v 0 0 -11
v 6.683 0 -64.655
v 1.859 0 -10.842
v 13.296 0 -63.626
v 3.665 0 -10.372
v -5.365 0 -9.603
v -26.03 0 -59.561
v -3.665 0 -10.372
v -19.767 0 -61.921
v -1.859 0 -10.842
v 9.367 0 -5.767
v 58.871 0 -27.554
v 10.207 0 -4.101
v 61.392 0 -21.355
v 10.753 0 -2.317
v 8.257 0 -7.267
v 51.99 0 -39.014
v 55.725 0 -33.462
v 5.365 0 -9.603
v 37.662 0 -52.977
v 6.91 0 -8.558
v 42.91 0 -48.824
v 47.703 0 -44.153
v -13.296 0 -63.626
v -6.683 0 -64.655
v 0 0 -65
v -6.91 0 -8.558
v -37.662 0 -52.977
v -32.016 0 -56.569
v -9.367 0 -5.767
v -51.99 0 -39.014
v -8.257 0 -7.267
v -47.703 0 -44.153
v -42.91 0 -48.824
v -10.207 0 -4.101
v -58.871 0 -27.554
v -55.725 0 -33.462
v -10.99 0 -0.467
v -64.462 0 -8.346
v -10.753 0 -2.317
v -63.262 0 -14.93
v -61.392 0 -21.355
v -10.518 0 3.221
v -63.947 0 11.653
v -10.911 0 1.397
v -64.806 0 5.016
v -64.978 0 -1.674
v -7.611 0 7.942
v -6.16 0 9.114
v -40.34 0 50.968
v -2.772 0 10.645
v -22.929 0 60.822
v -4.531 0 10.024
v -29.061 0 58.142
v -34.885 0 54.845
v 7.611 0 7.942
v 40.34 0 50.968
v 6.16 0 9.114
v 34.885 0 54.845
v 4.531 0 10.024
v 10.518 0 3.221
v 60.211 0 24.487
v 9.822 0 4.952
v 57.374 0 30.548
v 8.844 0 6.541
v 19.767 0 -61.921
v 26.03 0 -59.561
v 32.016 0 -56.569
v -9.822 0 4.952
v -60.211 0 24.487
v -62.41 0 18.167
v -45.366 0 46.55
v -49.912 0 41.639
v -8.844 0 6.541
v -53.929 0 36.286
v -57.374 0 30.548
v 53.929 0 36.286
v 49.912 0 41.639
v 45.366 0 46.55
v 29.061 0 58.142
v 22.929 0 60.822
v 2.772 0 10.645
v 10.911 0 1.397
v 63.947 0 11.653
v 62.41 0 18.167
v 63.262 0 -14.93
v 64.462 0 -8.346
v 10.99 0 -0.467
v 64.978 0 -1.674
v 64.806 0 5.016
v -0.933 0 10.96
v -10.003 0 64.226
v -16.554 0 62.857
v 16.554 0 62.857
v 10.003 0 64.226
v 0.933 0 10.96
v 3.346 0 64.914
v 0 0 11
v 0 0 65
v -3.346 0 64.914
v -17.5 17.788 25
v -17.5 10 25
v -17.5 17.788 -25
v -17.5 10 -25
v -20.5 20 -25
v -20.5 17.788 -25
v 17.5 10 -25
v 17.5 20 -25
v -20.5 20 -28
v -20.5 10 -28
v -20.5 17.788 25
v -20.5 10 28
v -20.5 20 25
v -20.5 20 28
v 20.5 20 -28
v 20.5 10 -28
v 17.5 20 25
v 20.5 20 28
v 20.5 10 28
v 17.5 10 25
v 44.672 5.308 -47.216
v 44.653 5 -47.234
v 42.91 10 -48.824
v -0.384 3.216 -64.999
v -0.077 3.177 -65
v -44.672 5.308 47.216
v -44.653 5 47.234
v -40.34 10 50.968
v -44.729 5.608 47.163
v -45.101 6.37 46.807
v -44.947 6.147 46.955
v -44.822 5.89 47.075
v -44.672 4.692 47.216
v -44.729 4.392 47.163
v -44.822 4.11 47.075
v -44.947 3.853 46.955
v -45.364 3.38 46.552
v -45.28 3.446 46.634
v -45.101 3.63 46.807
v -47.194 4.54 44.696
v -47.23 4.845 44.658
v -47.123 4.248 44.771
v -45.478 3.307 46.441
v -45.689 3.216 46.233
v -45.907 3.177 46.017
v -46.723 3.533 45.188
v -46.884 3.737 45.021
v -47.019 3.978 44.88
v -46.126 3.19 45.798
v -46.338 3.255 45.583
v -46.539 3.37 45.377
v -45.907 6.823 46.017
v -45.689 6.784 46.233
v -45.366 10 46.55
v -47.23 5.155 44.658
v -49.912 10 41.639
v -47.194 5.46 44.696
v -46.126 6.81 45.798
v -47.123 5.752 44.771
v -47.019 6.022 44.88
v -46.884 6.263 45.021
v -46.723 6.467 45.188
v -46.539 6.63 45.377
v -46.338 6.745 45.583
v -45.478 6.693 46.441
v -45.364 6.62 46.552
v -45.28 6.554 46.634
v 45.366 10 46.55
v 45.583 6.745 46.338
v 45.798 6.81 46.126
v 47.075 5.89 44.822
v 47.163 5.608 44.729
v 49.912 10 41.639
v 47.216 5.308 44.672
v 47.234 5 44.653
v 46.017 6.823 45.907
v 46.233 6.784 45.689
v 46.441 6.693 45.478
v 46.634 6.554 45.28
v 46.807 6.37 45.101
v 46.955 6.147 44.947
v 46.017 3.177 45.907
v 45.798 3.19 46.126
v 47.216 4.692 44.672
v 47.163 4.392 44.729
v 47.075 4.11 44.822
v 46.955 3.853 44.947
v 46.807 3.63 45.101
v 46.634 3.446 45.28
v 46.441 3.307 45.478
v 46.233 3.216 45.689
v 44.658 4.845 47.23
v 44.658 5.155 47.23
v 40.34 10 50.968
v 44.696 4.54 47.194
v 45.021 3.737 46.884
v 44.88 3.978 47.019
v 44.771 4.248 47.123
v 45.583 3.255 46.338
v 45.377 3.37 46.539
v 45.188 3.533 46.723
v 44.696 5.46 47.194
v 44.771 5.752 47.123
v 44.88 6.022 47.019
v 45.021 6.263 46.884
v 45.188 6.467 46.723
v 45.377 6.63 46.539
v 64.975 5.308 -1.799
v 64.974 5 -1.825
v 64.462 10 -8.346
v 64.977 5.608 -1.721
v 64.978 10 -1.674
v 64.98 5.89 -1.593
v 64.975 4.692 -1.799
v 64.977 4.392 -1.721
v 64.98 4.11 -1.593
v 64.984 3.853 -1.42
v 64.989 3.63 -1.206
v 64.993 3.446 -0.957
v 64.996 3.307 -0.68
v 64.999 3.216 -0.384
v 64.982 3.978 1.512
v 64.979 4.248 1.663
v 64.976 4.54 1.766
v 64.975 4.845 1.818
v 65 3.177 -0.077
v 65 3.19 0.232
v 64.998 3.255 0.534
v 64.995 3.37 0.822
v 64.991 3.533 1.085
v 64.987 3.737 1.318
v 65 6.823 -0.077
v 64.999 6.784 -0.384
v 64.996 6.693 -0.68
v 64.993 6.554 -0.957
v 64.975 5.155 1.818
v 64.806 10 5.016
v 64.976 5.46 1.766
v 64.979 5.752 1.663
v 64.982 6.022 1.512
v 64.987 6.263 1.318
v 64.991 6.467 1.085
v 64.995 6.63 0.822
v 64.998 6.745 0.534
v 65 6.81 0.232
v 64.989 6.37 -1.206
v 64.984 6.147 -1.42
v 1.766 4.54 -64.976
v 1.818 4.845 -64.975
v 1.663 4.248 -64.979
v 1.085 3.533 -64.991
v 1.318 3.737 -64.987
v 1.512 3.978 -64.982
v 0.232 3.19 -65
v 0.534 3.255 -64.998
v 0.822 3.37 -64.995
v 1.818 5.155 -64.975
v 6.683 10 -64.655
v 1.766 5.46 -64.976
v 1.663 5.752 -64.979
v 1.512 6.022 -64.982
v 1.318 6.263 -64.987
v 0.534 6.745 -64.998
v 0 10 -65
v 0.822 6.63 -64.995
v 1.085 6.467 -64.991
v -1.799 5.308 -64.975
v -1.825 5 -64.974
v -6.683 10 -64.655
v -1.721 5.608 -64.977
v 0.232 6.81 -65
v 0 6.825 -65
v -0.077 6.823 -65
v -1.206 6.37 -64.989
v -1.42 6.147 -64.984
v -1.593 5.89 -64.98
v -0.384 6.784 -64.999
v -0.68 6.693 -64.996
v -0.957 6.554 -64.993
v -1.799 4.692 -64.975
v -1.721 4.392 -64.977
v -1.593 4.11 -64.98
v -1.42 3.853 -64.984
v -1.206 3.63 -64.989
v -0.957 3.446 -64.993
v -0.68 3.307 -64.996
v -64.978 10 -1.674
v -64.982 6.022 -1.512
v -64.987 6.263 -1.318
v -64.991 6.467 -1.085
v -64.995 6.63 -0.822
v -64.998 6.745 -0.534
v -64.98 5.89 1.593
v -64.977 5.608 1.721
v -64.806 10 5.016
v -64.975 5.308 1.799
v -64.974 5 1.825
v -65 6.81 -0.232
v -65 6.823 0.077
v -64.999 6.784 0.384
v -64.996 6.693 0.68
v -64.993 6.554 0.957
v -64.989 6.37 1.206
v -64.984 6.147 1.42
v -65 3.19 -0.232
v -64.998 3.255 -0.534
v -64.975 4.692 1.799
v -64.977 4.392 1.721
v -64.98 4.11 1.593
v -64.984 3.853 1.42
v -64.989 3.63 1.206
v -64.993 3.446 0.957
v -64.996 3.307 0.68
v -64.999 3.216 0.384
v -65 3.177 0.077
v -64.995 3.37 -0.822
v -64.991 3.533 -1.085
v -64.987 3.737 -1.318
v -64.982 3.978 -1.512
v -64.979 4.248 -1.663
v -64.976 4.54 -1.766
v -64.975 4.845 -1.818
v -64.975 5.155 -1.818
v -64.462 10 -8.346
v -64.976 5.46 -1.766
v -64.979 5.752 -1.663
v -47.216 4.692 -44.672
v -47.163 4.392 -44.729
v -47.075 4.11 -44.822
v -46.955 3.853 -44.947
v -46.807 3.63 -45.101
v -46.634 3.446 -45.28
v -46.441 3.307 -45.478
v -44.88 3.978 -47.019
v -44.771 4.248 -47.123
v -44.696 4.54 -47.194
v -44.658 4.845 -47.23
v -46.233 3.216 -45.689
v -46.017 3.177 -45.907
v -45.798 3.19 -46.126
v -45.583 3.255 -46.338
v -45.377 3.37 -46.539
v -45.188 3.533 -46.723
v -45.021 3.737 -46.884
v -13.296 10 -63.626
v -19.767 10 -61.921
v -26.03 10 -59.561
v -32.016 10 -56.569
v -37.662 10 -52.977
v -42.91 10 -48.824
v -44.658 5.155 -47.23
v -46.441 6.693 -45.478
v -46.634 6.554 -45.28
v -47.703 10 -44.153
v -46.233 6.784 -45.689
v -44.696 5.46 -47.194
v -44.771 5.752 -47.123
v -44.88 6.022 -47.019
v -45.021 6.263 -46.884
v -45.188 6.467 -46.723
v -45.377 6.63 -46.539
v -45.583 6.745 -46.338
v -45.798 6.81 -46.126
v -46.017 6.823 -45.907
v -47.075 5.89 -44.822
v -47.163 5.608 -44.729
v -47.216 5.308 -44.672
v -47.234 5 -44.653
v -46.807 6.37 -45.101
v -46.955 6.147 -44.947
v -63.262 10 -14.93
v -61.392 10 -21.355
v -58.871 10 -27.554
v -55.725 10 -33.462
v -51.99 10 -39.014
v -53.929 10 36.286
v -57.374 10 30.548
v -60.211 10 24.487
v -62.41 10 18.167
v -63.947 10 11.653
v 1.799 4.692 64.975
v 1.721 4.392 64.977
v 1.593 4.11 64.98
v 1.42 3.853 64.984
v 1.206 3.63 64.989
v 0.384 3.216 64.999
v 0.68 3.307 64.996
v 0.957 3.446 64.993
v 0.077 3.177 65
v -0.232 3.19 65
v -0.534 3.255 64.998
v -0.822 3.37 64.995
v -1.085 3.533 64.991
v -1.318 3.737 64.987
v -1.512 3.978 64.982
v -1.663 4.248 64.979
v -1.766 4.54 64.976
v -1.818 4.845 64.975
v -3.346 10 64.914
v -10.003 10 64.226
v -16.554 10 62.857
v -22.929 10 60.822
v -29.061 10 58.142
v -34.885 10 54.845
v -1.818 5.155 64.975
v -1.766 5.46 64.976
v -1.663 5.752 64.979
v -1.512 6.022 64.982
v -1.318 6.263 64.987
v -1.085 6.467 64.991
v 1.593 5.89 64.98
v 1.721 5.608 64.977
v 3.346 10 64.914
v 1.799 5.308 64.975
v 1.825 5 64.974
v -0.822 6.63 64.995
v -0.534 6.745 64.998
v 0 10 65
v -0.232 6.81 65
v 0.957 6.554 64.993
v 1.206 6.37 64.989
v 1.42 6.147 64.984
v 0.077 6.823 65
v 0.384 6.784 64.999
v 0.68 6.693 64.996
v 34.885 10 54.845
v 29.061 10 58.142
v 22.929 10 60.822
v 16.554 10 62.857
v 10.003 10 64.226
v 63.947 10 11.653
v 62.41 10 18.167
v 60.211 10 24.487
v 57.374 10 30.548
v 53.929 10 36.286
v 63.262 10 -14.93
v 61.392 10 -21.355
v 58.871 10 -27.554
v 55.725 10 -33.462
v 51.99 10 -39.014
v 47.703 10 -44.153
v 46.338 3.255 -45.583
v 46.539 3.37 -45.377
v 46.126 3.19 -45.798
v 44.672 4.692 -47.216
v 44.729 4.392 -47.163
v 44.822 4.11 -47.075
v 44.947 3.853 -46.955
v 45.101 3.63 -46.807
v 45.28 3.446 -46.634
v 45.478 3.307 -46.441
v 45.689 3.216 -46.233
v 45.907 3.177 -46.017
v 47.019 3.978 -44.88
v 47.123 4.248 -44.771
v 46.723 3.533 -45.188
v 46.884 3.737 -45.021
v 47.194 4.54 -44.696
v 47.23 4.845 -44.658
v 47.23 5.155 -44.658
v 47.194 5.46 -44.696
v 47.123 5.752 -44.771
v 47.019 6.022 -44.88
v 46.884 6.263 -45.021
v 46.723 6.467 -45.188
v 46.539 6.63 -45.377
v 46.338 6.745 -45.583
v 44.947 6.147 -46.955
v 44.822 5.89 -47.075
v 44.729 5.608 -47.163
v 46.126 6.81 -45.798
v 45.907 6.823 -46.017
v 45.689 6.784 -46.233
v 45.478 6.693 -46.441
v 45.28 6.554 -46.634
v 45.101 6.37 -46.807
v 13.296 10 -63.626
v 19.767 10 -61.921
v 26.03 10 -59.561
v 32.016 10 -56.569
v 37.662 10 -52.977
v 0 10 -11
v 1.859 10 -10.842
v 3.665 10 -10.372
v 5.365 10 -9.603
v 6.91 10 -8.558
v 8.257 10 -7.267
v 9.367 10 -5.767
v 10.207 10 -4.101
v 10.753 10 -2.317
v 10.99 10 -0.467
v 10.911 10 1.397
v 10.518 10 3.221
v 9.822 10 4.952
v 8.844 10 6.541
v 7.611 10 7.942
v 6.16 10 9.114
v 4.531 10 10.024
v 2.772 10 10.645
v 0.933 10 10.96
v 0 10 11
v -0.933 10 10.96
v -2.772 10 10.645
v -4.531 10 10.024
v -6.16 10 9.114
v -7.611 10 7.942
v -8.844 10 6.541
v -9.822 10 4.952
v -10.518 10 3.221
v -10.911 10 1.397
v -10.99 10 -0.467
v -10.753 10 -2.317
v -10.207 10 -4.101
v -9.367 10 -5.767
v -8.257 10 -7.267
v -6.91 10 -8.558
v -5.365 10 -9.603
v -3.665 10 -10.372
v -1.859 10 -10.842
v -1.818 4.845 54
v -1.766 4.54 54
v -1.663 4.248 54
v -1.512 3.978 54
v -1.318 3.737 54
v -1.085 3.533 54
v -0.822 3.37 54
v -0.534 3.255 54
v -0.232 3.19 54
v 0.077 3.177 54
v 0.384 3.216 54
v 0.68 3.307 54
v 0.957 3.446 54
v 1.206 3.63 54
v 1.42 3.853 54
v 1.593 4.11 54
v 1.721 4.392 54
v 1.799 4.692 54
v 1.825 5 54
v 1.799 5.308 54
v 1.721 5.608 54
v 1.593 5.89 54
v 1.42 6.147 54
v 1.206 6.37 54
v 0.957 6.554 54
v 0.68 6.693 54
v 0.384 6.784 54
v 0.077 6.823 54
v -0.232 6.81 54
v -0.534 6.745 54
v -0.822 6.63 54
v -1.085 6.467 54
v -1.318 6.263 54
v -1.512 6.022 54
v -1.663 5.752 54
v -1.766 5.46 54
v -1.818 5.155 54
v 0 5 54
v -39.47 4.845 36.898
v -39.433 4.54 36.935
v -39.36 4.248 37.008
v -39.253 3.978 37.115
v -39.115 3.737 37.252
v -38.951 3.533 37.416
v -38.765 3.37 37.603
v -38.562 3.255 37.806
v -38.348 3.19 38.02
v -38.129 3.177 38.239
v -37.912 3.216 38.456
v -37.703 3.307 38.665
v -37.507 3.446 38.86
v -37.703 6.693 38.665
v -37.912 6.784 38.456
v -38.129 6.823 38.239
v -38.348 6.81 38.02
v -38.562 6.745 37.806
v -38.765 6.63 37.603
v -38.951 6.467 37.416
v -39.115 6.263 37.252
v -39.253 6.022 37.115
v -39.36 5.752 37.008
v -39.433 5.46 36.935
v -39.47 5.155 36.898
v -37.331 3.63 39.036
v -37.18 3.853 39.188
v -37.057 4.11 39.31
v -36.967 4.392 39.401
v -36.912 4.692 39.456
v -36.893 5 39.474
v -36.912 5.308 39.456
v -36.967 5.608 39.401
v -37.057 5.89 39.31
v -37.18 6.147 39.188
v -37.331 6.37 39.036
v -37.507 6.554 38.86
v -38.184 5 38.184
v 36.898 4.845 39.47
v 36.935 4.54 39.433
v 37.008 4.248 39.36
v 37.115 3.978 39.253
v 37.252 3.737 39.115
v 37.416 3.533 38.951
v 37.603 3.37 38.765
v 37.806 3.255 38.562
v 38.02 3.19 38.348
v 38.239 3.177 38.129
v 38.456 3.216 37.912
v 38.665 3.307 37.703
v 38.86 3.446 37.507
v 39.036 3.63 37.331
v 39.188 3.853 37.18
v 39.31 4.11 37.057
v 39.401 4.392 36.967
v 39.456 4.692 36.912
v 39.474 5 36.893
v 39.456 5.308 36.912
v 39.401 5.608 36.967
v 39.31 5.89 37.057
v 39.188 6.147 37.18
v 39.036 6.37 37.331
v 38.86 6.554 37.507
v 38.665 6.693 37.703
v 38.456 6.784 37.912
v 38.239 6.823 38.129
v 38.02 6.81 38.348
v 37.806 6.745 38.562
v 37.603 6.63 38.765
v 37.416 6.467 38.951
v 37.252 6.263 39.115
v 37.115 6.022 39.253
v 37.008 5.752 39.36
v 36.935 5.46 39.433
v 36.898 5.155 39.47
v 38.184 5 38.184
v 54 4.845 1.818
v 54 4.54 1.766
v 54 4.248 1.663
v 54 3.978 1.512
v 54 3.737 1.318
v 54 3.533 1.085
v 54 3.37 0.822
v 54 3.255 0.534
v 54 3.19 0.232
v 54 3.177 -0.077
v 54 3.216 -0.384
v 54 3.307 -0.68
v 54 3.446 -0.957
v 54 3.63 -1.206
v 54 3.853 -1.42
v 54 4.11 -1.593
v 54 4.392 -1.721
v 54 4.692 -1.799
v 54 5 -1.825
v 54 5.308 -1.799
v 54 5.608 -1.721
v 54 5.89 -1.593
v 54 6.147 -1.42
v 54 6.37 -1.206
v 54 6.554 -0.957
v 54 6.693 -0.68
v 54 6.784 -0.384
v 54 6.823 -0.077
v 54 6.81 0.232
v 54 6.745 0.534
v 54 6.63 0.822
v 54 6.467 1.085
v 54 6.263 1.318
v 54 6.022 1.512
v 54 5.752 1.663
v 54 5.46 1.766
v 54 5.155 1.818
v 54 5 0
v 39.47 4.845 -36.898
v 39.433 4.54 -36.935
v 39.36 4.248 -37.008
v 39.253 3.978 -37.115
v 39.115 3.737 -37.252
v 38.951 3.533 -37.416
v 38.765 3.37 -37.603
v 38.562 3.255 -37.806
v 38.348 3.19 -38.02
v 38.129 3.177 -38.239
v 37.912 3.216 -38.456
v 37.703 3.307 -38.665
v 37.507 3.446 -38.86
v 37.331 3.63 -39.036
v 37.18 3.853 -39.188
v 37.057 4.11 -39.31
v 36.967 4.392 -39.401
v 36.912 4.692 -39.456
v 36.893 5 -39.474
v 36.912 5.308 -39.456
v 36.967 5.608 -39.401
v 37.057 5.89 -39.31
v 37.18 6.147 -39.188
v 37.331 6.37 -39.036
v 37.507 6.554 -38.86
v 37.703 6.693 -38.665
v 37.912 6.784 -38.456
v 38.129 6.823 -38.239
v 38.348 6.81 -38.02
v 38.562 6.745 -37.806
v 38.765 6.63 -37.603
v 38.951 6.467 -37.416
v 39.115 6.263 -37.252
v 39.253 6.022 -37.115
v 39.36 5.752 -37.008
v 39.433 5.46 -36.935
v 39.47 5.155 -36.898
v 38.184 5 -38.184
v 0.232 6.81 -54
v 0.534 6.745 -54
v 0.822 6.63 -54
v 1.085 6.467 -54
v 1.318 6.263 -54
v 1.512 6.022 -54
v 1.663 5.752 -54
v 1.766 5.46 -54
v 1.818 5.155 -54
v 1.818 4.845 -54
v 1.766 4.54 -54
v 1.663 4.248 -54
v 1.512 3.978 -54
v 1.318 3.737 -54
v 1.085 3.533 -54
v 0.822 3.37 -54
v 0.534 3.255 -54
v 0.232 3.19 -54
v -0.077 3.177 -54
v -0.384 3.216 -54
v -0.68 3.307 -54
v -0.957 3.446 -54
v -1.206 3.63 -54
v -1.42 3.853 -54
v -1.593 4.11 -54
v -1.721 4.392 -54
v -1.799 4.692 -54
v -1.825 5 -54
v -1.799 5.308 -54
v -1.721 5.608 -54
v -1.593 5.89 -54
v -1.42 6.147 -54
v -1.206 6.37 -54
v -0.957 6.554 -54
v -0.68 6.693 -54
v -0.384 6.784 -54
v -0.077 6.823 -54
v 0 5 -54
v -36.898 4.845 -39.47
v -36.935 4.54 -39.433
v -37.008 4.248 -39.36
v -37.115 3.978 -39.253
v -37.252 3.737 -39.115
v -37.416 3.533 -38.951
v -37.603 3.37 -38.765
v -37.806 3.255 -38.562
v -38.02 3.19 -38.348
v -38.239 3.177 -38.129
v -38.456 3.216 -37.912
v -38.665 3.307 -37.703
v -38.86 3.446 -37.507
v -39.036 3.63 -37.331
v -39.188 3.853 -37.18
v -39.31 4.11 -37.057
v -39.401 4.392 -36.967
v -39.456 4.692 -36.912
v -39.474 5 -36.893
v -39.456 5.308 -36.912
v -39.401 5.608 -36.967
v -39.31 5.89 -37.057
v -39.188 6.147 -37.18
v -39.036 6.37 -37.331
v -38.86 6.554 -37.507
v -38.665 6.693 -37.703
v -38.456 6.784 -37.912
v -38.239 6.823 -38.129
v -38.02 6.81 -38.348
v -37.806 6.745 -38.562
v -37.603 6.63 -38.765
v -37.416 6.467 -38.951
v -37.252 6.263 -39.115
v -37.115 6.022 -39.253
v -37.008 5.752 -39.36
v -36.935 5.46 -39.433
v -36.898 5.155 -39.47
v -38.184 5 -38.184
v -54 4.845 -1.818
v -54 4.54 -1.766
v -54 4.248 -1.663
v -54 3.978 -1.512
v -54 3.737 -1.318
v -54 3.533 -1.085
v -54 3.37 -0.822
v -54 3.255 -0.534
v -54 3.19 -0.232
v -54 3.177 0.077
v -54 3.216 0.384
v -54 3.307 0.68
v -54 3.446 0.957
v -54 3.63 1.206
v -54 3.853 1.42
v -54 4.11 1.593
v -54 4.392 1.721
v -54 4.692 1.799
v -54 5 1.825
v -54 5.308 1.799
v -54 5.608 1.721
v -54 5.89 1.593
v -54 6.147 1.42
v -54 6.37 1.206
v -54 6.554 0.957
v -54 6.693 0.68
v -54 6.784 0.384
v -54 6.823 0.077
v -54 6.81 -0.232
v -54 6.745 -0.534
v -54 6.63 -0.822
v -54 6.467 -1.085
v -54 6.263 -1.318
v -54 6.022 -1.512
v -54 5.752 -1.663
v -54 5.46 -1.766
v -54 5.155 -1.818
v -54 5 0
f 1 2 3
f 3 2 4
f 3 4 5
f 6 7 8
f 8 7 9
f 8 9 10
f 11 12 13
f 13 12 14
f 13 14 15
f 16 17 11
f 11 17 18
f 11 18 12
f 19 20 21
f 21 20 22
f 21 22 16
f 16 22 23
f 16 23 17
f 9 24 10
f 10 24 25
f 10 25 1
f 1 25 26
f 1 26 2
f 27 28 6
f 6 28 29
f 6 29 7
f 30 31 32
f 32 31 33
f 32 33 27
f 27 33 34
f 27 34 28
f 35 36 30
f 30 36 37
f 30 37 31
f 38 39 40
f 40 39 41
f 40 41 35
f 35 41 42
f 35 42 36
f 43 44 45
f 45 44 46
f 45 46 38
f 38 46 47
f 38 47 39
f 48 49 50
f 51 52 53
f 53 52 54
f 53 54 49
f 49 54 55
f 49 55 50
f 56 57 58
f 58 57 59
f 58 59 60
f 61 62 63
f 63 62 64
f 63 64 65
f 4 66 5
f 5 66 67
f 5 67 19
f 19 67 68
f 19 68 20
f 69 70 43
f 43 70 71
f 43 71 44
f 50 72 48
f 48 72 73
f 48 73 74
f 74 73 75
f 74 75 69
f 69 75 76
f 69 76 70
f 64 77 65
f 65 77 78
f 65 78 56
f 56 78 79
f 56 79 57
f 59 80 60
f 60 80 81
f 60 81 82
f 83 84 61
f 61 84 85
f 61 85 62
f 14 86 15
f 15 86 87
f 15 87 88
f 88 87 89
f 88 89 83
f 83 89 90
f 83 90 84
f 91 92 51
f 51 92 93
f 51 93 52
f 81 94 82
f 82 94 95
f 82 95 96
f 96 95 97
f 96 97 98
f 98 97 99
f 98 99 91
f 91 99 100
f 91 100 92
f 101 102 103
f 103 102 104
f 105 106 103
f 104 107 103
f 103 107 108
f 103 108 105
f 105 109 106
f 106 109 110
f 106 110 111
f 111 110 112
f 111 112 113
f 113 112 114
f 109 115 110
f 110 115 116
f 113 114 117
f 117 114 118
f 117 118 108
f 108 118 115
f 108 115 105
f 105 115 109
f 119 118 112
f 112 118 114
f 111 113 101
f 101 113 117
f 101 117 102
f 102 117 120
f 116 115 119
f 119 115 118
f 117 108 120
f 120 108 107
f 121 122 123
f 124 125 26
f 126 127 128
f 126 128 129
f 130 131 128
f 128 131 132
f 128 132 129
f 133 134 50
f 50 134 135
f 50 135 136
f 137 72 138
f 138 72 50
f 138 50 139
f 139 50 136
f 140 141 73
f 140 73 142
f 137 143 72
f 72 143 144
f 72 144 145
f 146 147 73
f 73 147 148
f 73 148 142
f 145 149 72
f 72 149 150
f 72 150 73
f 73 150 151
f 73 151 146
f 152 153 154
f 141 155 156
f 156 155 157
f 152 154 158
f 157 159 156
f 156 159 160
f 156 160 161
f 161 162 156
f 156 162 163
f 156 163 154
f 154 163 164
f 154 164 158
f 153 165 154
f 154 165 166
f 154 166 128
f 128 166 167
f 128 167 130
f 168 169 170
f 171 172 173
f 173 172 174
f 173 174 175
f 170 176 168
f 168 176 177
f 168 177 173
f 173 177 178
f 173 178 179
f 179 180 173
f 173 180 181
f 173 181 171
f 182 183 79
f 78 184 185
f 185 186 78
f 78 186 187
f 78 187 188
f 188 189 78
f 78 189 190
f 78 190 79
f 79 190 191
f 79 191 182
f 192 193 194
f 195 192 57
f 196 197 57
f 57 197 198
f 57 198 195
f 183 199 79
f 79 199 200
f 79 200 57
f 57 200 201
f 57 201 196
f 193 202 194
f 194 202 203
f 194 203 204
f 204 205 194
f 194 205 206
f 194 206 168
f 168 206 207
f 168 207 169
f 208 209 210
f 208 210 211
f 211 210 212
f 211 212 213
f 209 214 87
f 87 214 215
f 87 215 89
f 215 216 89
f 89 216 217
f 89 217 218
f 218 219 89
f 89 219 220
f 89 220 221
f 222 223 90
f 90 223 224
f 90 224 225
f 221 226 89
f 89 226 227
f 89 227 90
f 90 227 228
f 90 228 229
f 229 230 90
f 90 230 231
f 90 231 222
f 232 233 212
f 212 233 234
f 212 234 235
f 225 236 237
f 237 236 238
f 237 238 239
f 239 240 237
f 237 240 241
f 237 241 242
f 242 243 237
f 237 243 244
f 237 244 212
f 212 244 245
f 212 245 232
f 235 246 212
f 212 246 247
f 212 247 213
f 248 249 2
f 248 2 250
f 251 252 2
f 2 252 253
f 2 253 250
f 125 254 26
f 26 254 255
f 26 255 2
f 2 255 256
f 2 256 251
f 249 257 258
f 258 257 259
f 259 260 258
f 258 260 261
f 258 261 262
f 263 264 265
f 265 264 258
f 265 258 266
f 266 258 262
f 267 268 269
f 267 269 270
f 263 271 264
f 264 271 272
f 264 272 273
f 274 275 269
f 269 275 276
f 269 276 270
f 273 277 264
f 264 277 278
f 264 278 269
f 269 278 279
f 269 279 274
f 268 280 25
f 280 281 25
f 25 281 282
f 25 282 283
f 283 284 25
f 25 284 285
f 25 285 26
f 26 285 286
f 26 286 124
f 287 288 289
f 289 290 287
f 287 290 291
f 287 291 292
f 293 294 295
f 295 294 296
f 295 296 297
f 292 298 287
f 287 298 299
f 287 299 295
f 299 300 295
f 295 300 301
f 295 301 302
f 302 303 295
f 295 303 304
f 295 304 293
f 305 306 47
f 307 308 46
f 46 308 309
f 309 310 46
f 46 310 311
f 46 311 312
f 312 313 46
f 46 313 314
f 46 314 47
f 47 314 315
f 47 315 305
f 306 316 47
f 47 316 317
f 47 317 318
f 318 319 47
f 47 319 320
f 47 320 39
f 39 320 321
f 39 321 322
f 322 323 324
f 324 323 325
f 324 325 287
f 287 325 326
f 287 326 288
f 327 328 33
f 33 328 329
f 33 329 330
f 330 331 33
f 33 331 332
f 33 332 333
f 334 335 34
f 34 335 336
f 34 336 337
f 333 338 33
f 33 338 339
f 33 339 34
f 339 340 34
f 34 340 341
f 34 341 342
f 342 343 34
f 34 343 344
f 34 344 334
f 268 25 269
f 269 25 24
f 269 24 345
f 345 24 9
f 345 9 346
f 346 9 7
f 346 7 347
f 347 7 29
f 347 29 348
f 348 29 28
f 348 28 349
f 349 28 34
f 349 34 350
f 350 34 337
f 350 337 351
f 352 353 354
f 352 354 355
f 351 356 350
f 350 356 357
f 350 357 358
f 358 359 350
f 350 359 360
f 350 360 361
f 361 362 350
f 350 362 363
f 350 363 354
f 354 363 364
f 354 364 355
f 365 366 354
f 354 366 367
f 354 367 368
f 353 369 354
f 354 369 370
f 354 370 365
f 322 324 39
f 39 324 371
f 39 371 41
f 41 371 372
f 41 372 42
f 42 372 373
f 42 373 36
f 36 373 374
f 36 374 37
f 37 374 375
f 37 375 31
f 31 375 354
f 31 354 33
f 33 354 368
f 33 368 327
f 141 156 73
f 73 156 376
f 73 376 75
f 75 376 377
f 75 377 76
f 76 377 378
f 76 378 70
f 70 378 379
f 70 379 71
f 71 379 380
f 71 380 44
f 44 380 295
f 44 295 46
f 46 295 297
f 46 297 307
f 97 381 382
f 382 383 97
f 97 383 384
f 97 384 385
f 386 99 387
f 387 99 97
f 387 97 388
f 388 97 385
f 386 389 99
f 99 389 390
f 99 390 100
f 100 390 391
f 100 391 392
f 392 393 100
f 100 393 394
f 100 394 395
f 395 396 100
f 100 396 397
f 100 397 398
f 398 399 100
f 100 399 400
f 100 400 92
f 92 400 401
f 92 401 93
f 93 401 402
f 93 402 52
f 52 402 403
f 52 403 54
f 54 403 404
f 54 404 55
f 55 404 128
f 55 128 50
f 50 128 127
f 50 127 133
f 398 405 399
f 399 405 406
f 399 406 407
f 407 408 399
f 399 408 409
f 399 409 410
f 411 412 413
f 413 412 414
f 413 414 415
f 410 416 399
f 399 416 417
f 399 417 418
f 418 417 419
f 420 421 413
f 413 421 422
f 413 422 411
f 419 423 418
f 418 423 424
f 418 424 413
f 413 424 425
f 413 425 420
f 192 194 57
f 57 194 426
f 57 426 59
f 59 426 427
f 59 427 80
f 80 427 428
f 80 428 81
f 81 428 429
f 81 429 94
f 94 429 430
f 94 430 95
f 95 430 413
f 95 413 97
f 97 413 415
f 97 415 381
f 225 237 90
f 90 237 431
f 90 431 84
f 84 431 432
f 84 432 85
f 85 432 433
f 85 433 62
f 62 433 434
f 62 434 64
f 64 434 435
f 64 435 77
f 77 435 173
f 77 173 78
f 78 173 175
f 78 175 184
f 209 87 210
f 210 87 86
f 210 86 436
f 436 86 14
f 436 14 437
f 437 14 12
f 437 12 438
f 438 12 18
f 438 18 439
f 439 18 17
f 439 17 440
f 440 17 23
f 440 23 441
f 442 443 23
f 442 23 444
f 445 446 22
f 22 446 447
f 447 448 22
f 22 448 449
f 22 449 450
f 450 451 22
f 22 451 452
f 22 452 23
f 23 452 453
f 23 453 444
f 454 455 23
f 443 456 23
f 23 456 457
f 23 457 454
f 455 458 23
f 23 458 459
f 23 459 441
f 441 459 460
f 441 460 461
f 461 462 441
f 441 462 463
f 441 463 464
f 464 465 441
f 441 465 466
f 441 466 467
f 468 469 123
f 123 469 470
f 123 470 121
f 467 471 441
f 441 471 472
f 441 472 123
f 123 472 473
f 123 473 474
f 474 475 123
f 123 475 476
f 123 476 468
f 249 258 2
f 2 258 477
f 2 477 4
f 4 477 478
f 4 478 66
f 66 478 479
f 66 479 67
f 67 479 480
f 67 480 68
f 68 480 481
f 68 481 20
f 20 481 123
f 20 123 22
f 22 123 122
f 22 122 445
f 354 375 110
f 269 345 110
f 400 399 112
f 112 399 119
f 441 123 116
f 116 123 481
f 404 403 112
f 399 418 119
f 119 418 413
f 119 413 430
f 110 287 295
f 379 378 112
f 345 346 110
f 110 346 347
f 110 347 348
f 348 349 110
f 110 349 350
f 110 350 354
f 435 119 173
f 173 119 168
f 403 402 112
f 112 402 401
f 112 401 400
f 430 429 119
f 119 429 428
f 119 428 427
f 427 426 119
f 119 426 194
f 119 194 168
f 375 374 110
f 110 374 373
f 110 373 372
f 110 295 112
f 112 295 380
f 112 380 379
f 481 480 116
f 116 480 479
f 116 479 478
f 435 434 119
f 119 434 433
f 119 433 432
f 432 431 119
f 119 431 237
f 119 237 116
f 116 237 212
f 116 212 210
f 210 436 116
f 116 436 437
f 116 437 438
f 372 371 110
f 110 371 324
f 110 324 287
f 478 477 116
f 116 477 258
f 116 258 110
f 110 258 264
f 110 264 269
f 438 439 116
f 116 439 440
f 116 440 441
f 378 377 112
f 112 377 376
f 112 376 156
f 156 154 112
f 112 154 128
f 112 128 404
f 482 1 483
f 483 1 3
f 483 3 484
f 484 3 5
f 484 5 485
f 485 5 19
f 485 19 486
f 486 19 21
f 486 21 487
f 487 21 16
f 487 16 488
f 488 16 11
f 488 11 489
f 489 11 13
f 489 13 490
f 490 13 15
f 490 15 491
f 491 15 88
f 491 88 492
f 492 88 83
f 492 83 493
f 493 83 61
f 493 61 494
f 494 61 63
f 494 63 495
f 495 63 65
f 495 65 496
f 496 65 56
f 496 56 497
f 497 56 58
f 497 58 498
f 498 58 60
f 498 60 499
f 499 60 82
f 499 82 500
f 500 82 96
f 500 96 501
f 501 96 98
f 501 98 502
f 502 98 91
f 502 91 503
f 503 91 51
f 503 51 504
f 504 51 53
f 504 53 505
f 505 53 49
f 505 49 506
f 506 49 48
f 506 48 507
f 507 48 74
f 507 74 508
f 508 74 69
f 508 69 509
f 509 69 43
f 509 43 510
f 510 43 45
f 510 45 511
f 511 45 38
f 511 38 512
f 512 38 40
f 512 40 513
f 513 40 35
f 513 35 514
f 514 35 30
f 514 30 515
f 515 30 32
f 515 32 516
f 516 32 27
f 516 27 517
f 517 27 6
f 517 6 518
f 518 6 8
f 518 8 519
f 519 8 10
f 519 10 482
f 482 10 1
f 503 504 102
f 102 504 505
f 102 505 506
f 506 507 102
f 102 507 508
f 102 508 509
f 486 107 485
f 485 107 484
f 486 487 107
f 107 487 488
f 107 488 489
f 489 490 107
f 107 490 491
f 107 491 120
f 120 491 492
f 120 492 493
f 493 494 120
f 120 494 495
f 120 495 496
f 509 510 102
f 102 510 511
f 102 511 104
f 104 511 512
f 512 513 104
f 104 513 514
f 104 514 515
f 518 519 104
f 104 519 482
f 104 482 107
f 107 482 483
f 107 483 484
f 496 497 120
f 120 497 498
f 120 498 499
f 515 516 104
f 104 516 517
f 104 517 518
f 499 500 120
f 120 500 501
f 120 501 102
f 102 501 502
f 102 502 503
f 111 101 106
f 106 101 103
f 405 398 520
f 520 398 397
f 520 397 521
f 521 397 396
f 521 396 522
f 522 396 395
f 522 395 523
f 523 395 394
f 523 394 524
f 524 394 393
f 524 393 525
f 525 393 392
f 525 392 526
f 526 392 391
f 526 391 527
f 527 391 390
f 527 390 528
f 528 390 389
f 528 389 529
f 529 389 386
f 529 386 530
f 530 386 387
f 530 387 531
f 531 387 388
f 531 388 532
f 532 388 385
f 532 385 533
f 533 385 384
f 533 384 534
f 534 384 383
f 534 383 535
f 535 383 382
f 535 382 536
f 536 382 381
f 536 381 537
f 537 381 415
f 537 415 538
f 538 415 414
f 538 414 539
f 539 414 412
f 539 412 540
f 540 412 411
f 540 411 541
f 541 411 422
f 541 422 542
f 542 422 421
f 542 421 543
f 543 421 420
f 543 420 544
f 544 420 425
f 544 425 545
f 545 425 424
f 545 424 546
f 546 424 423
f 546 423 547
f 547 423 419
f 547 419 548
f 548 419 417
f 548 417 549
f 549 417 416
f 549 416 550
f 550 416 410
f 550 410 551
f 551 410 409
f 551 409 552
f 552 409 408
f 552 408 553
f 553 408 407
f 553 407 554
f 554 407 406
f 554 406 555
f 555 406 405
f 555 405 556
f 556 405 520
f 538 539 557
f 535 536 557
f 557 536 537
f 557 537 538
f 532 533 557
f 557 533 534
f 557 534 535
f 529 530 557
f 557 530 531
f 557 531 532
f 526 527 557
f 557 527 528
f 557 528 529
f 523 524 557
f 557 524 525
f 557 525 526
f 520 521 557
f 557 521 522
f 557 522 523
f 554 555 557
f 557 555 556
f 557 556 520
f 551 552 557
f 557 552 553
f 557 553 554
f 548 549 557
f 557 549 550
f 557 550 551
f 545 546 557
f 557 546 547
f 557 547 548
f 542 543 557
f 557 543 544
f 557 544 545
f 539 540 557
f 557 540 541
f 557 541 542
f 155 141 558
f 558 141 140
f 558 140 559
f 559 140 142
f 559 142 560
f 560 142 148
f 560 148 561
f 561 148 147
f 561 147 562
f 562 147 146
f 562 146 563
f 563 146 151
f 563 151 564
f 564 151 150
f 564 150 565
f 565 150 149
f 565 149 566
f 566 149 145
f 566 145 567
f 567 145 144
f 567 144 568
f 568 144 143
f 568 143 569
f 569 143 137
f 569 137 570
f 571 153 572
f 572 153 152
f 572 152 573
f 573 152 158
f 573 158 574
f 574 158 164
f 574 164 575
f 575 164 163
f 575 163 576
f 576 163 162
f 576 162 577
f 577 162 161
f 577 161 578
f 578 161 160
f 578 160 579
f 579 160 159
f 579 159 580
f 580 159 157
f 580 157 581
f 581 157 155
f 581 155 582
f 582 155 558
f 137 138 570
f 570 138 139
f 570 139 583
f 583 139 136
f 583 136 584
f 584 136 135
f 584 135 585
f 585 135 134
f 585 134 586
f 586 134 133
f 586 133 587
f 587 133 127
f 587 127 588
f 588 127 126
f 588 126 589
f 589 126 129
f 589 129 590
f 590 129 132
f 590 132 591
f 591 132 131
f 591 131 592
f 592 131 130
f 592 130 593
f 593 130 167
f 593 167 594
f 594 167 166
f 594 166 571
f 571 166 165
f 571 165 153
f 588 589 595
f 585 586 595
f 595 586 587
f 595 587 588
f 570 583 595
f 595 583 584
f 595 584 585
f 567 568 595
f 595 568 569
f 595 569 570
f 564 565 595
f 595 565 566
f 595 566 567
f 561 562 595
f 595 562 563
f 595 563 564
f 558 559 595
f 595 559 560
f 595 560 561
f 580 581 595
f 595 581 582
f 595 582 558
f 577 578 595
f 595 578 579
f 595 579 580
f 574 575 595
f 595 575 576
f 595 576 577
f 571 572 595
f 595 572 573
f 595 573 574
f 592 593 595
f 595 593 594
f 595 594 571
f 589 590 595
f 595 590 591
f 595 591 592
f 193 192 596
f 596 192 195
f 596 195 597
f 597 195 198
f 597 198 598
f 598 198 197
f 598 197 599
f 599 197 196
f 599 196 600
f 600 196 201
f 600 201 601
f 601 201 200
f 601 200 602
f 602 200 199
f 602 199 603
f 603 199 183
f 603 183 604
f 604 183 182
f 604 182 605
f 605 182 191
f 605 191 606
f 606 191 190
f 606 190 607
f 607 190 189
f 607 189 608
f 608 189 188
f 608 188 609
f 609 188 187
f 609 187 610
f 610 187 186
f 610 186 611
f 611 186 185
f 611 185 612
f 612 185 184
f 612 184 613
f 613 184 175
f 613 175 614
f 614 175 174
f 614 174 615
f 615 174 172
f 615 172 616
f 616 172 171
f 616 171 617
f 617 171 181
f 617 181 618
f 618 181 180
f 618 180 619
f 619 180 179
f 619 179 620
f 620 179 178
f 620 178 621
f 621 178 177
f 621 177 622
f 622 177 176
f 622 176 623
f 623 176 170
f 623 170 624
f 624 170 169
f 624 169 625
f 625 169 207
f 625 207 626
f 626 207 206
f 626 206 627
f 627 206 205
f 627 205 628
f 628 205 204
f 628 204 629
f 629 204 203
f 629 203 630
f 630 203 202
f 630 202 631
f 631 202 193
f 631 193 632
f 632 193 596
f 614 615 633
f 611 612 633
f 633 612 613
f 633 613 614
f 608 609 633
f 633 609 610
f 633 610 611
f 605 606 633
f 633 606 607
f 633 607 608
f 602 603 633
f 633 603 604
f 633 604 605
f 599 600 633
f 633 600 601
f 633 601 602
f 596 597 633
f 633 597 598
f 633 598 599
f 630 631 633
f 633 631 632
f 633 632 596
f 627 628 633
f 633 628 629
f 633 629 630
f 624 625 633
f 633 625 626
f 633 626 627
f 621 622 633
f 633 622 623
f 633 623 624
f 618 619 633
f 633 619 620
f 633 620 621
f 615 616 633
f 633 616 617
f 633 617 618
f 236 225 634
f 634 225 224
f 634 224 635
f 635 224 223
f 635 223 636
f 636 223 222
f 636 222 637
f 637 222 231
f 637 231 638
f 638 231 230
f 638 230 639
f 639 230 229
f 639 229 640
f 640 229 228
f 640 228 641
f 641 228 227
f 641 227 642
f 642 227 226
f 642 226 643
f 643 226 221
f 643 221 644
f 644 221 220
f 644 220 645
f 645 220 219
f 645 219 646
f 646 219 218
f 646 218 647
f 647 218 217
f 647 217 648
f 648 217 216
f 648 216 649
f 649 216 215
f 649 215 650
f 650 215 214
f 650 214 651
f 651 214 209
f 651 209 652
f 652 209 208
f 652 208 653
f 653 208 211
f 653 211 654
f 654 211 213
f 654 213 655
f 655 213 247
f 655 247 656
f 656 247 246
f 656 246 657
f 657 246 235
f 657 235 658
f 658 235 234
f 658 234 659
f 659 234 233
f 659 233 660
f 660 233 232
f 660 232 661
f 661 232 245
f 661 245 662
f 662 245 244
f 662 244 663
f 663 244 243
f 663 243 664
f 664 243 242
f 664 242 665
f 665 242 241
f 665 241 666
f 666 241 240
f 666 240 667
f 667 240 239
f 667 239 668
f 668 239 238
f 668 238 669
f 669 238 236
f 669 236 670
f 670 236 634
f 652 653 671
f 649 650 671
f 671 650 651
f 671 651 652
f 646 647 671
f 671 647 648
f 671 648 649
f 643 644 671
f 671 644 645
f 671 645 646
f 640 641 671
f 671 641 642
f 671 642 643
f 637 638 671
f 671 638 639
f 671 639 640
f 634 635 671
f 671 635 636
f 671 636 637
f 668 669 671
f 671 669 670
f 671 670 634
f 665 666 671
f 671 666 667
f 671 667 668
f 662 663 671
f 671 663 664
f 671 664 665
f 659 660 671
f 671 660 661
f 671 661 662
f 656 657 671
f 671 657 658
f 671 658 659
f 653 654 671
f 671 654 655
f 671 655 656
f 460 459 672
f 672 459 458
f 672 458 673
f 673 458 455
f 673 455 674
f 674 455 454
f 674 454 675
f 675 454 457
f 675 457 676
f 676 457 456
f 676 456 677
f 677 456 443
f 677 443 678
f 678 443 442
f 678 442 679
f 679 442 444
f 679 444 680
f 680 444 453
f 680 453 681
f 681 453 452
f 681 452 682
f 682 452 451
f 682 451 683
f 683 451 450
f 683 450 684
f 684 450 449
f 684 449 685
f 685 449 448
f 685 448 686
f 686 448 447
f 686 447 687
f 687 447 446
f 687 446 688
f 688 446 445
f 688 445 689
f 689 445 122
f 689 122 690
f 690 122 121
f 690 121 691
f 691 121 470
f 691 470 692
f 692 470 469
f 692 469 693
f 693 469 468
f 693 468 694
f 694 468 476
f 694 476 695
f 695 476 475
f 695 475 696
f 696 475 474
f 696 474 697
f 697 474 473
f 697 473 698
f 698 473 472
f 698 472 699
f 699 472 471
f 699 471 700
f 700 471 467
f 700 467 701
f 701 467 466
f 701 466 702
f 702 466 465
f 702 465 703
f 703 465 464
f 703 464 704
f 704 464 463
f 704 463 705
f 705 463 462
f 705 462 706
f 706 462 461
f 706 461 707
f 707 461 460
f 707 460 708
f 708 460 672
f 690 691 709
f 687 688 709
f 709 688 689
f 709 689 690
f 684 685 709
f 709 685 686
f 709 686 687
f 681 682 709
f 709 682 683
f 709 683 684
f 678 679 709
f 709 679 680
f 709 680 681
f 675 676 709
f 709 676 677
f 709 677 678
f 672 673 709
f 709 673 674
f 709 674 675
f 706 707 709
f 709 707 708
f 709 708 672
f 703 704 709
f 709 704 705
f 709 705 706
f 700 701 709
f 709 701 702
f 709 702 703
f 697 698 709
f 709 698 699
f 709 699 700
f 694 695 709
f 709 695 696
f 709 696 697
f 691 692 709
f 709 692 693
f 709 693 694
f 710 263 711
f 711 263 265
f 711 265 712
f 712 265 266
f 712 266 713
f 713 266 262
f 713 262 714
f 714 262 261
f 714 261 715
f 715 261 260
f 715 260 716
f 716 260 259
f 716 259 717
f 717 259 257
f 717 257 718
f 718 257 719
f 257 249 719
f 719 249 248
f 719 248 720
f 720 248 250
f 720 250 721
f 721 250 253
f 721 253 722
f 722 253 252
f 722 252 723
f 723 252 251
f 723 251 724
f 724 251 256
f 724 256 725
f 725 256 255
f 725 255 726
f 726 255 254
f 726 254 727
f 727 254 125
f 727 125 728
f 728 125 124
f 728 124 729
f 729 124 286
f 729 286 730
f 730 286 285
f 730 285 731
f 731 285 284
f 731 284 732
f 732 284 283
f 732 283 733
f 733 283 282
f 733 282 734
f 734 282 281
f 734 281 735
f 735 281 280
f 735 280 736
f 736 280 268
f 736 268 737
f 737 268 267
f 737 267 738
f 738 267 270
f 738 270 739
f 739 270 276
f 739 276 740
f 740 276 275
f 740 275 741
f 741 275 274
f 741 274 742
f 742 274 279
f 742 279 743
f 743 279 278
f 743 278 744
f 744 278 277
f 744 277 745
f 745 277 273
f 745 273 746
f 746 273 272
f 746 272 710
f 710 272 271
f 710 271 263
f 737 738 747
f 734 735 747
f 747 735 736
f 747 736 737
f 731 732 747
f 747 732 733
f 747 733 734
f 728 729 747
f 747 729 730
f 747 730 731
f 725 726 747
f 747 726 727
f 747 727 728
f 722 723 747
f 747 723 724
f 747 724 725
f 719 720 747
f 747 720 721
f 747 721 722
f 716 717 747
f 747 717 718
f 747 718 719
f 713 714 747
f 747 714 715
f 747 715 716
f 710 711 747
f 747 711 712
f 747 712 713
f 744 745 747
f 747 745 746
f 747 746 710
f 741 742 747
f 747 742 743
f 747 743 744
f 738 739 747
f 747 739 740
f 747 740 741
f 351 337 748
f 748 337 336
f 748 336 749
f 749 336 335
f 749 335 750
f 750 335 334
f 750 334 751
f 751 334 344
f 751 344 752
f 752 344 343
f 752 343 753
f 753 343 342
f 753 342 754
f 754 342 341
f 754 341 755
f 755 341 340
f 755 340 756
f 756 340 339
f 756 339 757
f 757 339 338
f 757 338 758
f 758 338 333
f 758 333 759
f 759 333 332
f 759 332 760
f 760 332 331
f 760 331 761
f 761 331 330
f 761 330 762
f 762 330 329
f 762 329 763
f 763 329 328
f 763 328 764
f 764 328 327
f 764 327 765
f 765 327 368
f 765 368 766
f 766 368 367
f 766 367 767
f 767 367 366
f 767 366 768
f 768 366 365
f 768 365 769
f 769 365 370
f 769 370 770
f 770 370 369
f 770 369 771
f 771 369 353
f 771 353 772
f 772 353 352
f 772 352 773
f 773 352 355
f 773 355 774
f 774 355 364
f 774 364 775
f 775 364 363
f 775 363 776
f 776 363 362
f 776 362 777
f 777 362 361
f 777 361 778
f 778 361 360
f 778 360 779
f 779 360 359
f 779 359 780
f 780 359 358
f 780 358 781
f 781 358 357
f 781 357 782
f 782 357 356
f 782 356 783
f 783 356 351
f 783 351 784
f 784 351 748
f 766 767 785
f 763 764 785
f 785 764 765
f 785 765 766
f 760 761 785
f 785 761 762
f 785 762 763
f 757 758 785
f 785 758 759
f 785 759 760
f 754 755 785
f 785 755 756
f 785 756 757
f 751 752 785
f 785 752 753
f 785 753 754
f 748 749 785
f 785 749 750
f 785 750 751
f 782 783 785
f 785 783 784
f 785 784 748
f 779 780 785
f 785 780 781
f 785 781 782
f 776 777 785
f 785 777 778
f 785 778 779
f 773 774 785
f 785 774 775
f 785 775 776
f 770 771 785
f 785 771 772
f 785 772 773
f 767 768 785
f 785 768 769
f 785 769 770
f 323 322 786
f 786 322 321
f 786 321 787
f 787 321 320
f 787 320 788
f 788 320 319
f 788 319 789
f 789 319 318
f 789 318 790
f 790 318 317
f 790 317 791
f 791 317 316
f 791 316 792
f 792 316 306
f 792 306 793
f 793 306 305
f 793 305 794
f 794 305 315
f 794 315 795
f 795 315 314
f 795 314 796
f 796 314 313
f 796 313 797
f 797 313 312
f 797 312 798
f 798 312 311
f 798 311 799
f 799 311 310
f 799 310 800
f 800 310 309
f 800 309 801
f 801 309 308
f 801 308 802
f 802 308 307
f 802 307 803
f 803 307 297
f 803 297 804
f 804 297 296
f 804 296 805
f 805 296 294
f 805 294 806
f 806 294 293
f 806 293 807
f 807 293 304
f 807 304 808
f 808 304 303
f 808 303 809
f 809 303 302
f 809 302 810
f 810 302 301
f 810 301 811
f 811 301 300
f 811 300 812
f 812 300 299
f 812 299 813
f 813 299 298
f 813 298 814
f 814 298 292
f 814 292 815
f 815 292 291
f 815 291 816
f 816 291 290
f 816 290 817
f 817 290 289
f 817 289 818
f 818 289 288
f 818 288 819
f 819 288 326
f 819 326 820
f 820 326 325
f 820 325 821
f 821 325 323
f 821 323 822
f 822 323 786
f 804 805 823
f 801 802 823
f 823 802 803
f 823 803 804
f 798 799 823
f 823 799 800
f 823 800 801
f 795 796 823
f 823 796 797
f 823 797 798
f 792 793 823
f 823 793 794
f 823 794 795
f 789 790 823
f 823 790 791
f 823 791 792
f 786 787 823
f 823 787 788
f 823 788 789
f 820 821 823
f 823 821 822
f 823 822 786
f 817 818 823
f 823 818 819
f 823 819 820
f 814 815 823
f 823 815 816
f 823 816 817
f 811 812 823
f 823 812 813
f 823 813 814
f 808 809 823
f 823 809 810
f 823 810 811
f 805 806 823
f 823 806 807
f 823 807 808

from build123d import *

# Parameters (mm, degrees)
SKETCH2_W           = 41
SKETCH2_H           = 56
SKETCH2_W_2         = 35
SKETCH2_H_2         = 50
BOSS_EXTRUDE1_DEPTH = 20
BOSS_EXTRUDE2_DEPTH = 10
SKETCH2_4_W         = 35
SKETCH2_4_H         = 50
SKETCH2_4_R         = 11
BOSS_EXTRUDE3_DEPTH = 10
SKETCH10_W          = 50
SKETCH10_H          = 2.212003264
CUT_EXTRUDE1_DEPTH  = 10
CUT_EXTRUDE2_START  = 65
SKETCH12_R          = 1.825
CUT_EXTRUDE2_DEPTH  = 11
CIRPATTERN1_COUNT   = 8


with BuildPart() as part:
    # Sketch2 → Boss-Extrude1 (new body)
    with BuildSketch(Plane(origin=(0, 0, 0), x_dir=(1, 0, 0), z_dir=(0, 1, 0))):
        Rectangle(SKETCH2_W, SKETCH2_H)
        Rectangle(SKETCH2_W_2, SKETCH2_H_2, mode=Mode.SUBTRACT)
    extrude(amount=BOSS_EXTRUDE1_DEPTH)

    # Sketch2<3> → Boss-Extrude2 (add)
    with BuildSketch(Plane(origin=(0, 0, 0), x_dir=(1, 0, 0), z_dir=(0, 1, 0))):
        with BuildLine():
            ThreePointArc((65, 0), (45.961940777, 45.961940777), (0, 65))
            ThreePointArc((0, 65), (-45.961940777, -45.961940777), (65, 0))
        make_face()
        Polygon((-20.5, -28), (-20.5, 0), (-20.5, 28), (0, 28), (20.5, 28), (20.5, 0), (20.5, -28), align=None, mode=Mode.SUBTRACT)
    extrude(amount=BOSS_EXTRUDE2_DEPTH)

    # Sketch2<4> → Boss-Extrude3 (add)
    with BuildSketch(Plane(origin=(0, 0, 0), x_dir=(1, 0, 0), z_dir=(0, 1, 0))):
        Rectangle(SKETCH2_4_W, SKETCH2_4_H)
        Circle(SKETCH2_4_R, mode=Mode.SUBTRACT)
    extrude(amount=BOSS_EXTRUDE3_DEPTH)

    # Sketch10 → Cut-Extrude1 (cut)
    with BuildSketch(Plane.ZY.offset(20.5)):
        with Locations((0, 18.893998368)):
            Rectangle(SKETCH10_W, SKETCH10_H)
    extrude(amount=-CUT_EXTRUDE1_DEPTH, mode=Mode.SUBTRACT)

    # Sketch12 → Cut-Extrude2 (cut)
    with BuildSketch(Plane.XY.offset(CUT_EXTRUDE2_START)):
        with Locations((0, 5)):
            Circle(SKETCH12_R)
    cut_extrude2 = extrude(amount=-CUT_EXTRUDE2_DEPTH, mode=Mode.SUBTRACT)

    # CirPattern1: Cut-Extrude2 ×8 about axis
    cirpattern1_axis = Axis((0, 0, 0), (0, 1, 0))
    for i in range(1, CIRPATTERN1_COUNT):
        add(cut_extrude2.rotate(cirpattern1_axis, i * 360 / CIRPATTERN1_COUNT), mode=Mode.SUBTRACT)


solid = part.part
